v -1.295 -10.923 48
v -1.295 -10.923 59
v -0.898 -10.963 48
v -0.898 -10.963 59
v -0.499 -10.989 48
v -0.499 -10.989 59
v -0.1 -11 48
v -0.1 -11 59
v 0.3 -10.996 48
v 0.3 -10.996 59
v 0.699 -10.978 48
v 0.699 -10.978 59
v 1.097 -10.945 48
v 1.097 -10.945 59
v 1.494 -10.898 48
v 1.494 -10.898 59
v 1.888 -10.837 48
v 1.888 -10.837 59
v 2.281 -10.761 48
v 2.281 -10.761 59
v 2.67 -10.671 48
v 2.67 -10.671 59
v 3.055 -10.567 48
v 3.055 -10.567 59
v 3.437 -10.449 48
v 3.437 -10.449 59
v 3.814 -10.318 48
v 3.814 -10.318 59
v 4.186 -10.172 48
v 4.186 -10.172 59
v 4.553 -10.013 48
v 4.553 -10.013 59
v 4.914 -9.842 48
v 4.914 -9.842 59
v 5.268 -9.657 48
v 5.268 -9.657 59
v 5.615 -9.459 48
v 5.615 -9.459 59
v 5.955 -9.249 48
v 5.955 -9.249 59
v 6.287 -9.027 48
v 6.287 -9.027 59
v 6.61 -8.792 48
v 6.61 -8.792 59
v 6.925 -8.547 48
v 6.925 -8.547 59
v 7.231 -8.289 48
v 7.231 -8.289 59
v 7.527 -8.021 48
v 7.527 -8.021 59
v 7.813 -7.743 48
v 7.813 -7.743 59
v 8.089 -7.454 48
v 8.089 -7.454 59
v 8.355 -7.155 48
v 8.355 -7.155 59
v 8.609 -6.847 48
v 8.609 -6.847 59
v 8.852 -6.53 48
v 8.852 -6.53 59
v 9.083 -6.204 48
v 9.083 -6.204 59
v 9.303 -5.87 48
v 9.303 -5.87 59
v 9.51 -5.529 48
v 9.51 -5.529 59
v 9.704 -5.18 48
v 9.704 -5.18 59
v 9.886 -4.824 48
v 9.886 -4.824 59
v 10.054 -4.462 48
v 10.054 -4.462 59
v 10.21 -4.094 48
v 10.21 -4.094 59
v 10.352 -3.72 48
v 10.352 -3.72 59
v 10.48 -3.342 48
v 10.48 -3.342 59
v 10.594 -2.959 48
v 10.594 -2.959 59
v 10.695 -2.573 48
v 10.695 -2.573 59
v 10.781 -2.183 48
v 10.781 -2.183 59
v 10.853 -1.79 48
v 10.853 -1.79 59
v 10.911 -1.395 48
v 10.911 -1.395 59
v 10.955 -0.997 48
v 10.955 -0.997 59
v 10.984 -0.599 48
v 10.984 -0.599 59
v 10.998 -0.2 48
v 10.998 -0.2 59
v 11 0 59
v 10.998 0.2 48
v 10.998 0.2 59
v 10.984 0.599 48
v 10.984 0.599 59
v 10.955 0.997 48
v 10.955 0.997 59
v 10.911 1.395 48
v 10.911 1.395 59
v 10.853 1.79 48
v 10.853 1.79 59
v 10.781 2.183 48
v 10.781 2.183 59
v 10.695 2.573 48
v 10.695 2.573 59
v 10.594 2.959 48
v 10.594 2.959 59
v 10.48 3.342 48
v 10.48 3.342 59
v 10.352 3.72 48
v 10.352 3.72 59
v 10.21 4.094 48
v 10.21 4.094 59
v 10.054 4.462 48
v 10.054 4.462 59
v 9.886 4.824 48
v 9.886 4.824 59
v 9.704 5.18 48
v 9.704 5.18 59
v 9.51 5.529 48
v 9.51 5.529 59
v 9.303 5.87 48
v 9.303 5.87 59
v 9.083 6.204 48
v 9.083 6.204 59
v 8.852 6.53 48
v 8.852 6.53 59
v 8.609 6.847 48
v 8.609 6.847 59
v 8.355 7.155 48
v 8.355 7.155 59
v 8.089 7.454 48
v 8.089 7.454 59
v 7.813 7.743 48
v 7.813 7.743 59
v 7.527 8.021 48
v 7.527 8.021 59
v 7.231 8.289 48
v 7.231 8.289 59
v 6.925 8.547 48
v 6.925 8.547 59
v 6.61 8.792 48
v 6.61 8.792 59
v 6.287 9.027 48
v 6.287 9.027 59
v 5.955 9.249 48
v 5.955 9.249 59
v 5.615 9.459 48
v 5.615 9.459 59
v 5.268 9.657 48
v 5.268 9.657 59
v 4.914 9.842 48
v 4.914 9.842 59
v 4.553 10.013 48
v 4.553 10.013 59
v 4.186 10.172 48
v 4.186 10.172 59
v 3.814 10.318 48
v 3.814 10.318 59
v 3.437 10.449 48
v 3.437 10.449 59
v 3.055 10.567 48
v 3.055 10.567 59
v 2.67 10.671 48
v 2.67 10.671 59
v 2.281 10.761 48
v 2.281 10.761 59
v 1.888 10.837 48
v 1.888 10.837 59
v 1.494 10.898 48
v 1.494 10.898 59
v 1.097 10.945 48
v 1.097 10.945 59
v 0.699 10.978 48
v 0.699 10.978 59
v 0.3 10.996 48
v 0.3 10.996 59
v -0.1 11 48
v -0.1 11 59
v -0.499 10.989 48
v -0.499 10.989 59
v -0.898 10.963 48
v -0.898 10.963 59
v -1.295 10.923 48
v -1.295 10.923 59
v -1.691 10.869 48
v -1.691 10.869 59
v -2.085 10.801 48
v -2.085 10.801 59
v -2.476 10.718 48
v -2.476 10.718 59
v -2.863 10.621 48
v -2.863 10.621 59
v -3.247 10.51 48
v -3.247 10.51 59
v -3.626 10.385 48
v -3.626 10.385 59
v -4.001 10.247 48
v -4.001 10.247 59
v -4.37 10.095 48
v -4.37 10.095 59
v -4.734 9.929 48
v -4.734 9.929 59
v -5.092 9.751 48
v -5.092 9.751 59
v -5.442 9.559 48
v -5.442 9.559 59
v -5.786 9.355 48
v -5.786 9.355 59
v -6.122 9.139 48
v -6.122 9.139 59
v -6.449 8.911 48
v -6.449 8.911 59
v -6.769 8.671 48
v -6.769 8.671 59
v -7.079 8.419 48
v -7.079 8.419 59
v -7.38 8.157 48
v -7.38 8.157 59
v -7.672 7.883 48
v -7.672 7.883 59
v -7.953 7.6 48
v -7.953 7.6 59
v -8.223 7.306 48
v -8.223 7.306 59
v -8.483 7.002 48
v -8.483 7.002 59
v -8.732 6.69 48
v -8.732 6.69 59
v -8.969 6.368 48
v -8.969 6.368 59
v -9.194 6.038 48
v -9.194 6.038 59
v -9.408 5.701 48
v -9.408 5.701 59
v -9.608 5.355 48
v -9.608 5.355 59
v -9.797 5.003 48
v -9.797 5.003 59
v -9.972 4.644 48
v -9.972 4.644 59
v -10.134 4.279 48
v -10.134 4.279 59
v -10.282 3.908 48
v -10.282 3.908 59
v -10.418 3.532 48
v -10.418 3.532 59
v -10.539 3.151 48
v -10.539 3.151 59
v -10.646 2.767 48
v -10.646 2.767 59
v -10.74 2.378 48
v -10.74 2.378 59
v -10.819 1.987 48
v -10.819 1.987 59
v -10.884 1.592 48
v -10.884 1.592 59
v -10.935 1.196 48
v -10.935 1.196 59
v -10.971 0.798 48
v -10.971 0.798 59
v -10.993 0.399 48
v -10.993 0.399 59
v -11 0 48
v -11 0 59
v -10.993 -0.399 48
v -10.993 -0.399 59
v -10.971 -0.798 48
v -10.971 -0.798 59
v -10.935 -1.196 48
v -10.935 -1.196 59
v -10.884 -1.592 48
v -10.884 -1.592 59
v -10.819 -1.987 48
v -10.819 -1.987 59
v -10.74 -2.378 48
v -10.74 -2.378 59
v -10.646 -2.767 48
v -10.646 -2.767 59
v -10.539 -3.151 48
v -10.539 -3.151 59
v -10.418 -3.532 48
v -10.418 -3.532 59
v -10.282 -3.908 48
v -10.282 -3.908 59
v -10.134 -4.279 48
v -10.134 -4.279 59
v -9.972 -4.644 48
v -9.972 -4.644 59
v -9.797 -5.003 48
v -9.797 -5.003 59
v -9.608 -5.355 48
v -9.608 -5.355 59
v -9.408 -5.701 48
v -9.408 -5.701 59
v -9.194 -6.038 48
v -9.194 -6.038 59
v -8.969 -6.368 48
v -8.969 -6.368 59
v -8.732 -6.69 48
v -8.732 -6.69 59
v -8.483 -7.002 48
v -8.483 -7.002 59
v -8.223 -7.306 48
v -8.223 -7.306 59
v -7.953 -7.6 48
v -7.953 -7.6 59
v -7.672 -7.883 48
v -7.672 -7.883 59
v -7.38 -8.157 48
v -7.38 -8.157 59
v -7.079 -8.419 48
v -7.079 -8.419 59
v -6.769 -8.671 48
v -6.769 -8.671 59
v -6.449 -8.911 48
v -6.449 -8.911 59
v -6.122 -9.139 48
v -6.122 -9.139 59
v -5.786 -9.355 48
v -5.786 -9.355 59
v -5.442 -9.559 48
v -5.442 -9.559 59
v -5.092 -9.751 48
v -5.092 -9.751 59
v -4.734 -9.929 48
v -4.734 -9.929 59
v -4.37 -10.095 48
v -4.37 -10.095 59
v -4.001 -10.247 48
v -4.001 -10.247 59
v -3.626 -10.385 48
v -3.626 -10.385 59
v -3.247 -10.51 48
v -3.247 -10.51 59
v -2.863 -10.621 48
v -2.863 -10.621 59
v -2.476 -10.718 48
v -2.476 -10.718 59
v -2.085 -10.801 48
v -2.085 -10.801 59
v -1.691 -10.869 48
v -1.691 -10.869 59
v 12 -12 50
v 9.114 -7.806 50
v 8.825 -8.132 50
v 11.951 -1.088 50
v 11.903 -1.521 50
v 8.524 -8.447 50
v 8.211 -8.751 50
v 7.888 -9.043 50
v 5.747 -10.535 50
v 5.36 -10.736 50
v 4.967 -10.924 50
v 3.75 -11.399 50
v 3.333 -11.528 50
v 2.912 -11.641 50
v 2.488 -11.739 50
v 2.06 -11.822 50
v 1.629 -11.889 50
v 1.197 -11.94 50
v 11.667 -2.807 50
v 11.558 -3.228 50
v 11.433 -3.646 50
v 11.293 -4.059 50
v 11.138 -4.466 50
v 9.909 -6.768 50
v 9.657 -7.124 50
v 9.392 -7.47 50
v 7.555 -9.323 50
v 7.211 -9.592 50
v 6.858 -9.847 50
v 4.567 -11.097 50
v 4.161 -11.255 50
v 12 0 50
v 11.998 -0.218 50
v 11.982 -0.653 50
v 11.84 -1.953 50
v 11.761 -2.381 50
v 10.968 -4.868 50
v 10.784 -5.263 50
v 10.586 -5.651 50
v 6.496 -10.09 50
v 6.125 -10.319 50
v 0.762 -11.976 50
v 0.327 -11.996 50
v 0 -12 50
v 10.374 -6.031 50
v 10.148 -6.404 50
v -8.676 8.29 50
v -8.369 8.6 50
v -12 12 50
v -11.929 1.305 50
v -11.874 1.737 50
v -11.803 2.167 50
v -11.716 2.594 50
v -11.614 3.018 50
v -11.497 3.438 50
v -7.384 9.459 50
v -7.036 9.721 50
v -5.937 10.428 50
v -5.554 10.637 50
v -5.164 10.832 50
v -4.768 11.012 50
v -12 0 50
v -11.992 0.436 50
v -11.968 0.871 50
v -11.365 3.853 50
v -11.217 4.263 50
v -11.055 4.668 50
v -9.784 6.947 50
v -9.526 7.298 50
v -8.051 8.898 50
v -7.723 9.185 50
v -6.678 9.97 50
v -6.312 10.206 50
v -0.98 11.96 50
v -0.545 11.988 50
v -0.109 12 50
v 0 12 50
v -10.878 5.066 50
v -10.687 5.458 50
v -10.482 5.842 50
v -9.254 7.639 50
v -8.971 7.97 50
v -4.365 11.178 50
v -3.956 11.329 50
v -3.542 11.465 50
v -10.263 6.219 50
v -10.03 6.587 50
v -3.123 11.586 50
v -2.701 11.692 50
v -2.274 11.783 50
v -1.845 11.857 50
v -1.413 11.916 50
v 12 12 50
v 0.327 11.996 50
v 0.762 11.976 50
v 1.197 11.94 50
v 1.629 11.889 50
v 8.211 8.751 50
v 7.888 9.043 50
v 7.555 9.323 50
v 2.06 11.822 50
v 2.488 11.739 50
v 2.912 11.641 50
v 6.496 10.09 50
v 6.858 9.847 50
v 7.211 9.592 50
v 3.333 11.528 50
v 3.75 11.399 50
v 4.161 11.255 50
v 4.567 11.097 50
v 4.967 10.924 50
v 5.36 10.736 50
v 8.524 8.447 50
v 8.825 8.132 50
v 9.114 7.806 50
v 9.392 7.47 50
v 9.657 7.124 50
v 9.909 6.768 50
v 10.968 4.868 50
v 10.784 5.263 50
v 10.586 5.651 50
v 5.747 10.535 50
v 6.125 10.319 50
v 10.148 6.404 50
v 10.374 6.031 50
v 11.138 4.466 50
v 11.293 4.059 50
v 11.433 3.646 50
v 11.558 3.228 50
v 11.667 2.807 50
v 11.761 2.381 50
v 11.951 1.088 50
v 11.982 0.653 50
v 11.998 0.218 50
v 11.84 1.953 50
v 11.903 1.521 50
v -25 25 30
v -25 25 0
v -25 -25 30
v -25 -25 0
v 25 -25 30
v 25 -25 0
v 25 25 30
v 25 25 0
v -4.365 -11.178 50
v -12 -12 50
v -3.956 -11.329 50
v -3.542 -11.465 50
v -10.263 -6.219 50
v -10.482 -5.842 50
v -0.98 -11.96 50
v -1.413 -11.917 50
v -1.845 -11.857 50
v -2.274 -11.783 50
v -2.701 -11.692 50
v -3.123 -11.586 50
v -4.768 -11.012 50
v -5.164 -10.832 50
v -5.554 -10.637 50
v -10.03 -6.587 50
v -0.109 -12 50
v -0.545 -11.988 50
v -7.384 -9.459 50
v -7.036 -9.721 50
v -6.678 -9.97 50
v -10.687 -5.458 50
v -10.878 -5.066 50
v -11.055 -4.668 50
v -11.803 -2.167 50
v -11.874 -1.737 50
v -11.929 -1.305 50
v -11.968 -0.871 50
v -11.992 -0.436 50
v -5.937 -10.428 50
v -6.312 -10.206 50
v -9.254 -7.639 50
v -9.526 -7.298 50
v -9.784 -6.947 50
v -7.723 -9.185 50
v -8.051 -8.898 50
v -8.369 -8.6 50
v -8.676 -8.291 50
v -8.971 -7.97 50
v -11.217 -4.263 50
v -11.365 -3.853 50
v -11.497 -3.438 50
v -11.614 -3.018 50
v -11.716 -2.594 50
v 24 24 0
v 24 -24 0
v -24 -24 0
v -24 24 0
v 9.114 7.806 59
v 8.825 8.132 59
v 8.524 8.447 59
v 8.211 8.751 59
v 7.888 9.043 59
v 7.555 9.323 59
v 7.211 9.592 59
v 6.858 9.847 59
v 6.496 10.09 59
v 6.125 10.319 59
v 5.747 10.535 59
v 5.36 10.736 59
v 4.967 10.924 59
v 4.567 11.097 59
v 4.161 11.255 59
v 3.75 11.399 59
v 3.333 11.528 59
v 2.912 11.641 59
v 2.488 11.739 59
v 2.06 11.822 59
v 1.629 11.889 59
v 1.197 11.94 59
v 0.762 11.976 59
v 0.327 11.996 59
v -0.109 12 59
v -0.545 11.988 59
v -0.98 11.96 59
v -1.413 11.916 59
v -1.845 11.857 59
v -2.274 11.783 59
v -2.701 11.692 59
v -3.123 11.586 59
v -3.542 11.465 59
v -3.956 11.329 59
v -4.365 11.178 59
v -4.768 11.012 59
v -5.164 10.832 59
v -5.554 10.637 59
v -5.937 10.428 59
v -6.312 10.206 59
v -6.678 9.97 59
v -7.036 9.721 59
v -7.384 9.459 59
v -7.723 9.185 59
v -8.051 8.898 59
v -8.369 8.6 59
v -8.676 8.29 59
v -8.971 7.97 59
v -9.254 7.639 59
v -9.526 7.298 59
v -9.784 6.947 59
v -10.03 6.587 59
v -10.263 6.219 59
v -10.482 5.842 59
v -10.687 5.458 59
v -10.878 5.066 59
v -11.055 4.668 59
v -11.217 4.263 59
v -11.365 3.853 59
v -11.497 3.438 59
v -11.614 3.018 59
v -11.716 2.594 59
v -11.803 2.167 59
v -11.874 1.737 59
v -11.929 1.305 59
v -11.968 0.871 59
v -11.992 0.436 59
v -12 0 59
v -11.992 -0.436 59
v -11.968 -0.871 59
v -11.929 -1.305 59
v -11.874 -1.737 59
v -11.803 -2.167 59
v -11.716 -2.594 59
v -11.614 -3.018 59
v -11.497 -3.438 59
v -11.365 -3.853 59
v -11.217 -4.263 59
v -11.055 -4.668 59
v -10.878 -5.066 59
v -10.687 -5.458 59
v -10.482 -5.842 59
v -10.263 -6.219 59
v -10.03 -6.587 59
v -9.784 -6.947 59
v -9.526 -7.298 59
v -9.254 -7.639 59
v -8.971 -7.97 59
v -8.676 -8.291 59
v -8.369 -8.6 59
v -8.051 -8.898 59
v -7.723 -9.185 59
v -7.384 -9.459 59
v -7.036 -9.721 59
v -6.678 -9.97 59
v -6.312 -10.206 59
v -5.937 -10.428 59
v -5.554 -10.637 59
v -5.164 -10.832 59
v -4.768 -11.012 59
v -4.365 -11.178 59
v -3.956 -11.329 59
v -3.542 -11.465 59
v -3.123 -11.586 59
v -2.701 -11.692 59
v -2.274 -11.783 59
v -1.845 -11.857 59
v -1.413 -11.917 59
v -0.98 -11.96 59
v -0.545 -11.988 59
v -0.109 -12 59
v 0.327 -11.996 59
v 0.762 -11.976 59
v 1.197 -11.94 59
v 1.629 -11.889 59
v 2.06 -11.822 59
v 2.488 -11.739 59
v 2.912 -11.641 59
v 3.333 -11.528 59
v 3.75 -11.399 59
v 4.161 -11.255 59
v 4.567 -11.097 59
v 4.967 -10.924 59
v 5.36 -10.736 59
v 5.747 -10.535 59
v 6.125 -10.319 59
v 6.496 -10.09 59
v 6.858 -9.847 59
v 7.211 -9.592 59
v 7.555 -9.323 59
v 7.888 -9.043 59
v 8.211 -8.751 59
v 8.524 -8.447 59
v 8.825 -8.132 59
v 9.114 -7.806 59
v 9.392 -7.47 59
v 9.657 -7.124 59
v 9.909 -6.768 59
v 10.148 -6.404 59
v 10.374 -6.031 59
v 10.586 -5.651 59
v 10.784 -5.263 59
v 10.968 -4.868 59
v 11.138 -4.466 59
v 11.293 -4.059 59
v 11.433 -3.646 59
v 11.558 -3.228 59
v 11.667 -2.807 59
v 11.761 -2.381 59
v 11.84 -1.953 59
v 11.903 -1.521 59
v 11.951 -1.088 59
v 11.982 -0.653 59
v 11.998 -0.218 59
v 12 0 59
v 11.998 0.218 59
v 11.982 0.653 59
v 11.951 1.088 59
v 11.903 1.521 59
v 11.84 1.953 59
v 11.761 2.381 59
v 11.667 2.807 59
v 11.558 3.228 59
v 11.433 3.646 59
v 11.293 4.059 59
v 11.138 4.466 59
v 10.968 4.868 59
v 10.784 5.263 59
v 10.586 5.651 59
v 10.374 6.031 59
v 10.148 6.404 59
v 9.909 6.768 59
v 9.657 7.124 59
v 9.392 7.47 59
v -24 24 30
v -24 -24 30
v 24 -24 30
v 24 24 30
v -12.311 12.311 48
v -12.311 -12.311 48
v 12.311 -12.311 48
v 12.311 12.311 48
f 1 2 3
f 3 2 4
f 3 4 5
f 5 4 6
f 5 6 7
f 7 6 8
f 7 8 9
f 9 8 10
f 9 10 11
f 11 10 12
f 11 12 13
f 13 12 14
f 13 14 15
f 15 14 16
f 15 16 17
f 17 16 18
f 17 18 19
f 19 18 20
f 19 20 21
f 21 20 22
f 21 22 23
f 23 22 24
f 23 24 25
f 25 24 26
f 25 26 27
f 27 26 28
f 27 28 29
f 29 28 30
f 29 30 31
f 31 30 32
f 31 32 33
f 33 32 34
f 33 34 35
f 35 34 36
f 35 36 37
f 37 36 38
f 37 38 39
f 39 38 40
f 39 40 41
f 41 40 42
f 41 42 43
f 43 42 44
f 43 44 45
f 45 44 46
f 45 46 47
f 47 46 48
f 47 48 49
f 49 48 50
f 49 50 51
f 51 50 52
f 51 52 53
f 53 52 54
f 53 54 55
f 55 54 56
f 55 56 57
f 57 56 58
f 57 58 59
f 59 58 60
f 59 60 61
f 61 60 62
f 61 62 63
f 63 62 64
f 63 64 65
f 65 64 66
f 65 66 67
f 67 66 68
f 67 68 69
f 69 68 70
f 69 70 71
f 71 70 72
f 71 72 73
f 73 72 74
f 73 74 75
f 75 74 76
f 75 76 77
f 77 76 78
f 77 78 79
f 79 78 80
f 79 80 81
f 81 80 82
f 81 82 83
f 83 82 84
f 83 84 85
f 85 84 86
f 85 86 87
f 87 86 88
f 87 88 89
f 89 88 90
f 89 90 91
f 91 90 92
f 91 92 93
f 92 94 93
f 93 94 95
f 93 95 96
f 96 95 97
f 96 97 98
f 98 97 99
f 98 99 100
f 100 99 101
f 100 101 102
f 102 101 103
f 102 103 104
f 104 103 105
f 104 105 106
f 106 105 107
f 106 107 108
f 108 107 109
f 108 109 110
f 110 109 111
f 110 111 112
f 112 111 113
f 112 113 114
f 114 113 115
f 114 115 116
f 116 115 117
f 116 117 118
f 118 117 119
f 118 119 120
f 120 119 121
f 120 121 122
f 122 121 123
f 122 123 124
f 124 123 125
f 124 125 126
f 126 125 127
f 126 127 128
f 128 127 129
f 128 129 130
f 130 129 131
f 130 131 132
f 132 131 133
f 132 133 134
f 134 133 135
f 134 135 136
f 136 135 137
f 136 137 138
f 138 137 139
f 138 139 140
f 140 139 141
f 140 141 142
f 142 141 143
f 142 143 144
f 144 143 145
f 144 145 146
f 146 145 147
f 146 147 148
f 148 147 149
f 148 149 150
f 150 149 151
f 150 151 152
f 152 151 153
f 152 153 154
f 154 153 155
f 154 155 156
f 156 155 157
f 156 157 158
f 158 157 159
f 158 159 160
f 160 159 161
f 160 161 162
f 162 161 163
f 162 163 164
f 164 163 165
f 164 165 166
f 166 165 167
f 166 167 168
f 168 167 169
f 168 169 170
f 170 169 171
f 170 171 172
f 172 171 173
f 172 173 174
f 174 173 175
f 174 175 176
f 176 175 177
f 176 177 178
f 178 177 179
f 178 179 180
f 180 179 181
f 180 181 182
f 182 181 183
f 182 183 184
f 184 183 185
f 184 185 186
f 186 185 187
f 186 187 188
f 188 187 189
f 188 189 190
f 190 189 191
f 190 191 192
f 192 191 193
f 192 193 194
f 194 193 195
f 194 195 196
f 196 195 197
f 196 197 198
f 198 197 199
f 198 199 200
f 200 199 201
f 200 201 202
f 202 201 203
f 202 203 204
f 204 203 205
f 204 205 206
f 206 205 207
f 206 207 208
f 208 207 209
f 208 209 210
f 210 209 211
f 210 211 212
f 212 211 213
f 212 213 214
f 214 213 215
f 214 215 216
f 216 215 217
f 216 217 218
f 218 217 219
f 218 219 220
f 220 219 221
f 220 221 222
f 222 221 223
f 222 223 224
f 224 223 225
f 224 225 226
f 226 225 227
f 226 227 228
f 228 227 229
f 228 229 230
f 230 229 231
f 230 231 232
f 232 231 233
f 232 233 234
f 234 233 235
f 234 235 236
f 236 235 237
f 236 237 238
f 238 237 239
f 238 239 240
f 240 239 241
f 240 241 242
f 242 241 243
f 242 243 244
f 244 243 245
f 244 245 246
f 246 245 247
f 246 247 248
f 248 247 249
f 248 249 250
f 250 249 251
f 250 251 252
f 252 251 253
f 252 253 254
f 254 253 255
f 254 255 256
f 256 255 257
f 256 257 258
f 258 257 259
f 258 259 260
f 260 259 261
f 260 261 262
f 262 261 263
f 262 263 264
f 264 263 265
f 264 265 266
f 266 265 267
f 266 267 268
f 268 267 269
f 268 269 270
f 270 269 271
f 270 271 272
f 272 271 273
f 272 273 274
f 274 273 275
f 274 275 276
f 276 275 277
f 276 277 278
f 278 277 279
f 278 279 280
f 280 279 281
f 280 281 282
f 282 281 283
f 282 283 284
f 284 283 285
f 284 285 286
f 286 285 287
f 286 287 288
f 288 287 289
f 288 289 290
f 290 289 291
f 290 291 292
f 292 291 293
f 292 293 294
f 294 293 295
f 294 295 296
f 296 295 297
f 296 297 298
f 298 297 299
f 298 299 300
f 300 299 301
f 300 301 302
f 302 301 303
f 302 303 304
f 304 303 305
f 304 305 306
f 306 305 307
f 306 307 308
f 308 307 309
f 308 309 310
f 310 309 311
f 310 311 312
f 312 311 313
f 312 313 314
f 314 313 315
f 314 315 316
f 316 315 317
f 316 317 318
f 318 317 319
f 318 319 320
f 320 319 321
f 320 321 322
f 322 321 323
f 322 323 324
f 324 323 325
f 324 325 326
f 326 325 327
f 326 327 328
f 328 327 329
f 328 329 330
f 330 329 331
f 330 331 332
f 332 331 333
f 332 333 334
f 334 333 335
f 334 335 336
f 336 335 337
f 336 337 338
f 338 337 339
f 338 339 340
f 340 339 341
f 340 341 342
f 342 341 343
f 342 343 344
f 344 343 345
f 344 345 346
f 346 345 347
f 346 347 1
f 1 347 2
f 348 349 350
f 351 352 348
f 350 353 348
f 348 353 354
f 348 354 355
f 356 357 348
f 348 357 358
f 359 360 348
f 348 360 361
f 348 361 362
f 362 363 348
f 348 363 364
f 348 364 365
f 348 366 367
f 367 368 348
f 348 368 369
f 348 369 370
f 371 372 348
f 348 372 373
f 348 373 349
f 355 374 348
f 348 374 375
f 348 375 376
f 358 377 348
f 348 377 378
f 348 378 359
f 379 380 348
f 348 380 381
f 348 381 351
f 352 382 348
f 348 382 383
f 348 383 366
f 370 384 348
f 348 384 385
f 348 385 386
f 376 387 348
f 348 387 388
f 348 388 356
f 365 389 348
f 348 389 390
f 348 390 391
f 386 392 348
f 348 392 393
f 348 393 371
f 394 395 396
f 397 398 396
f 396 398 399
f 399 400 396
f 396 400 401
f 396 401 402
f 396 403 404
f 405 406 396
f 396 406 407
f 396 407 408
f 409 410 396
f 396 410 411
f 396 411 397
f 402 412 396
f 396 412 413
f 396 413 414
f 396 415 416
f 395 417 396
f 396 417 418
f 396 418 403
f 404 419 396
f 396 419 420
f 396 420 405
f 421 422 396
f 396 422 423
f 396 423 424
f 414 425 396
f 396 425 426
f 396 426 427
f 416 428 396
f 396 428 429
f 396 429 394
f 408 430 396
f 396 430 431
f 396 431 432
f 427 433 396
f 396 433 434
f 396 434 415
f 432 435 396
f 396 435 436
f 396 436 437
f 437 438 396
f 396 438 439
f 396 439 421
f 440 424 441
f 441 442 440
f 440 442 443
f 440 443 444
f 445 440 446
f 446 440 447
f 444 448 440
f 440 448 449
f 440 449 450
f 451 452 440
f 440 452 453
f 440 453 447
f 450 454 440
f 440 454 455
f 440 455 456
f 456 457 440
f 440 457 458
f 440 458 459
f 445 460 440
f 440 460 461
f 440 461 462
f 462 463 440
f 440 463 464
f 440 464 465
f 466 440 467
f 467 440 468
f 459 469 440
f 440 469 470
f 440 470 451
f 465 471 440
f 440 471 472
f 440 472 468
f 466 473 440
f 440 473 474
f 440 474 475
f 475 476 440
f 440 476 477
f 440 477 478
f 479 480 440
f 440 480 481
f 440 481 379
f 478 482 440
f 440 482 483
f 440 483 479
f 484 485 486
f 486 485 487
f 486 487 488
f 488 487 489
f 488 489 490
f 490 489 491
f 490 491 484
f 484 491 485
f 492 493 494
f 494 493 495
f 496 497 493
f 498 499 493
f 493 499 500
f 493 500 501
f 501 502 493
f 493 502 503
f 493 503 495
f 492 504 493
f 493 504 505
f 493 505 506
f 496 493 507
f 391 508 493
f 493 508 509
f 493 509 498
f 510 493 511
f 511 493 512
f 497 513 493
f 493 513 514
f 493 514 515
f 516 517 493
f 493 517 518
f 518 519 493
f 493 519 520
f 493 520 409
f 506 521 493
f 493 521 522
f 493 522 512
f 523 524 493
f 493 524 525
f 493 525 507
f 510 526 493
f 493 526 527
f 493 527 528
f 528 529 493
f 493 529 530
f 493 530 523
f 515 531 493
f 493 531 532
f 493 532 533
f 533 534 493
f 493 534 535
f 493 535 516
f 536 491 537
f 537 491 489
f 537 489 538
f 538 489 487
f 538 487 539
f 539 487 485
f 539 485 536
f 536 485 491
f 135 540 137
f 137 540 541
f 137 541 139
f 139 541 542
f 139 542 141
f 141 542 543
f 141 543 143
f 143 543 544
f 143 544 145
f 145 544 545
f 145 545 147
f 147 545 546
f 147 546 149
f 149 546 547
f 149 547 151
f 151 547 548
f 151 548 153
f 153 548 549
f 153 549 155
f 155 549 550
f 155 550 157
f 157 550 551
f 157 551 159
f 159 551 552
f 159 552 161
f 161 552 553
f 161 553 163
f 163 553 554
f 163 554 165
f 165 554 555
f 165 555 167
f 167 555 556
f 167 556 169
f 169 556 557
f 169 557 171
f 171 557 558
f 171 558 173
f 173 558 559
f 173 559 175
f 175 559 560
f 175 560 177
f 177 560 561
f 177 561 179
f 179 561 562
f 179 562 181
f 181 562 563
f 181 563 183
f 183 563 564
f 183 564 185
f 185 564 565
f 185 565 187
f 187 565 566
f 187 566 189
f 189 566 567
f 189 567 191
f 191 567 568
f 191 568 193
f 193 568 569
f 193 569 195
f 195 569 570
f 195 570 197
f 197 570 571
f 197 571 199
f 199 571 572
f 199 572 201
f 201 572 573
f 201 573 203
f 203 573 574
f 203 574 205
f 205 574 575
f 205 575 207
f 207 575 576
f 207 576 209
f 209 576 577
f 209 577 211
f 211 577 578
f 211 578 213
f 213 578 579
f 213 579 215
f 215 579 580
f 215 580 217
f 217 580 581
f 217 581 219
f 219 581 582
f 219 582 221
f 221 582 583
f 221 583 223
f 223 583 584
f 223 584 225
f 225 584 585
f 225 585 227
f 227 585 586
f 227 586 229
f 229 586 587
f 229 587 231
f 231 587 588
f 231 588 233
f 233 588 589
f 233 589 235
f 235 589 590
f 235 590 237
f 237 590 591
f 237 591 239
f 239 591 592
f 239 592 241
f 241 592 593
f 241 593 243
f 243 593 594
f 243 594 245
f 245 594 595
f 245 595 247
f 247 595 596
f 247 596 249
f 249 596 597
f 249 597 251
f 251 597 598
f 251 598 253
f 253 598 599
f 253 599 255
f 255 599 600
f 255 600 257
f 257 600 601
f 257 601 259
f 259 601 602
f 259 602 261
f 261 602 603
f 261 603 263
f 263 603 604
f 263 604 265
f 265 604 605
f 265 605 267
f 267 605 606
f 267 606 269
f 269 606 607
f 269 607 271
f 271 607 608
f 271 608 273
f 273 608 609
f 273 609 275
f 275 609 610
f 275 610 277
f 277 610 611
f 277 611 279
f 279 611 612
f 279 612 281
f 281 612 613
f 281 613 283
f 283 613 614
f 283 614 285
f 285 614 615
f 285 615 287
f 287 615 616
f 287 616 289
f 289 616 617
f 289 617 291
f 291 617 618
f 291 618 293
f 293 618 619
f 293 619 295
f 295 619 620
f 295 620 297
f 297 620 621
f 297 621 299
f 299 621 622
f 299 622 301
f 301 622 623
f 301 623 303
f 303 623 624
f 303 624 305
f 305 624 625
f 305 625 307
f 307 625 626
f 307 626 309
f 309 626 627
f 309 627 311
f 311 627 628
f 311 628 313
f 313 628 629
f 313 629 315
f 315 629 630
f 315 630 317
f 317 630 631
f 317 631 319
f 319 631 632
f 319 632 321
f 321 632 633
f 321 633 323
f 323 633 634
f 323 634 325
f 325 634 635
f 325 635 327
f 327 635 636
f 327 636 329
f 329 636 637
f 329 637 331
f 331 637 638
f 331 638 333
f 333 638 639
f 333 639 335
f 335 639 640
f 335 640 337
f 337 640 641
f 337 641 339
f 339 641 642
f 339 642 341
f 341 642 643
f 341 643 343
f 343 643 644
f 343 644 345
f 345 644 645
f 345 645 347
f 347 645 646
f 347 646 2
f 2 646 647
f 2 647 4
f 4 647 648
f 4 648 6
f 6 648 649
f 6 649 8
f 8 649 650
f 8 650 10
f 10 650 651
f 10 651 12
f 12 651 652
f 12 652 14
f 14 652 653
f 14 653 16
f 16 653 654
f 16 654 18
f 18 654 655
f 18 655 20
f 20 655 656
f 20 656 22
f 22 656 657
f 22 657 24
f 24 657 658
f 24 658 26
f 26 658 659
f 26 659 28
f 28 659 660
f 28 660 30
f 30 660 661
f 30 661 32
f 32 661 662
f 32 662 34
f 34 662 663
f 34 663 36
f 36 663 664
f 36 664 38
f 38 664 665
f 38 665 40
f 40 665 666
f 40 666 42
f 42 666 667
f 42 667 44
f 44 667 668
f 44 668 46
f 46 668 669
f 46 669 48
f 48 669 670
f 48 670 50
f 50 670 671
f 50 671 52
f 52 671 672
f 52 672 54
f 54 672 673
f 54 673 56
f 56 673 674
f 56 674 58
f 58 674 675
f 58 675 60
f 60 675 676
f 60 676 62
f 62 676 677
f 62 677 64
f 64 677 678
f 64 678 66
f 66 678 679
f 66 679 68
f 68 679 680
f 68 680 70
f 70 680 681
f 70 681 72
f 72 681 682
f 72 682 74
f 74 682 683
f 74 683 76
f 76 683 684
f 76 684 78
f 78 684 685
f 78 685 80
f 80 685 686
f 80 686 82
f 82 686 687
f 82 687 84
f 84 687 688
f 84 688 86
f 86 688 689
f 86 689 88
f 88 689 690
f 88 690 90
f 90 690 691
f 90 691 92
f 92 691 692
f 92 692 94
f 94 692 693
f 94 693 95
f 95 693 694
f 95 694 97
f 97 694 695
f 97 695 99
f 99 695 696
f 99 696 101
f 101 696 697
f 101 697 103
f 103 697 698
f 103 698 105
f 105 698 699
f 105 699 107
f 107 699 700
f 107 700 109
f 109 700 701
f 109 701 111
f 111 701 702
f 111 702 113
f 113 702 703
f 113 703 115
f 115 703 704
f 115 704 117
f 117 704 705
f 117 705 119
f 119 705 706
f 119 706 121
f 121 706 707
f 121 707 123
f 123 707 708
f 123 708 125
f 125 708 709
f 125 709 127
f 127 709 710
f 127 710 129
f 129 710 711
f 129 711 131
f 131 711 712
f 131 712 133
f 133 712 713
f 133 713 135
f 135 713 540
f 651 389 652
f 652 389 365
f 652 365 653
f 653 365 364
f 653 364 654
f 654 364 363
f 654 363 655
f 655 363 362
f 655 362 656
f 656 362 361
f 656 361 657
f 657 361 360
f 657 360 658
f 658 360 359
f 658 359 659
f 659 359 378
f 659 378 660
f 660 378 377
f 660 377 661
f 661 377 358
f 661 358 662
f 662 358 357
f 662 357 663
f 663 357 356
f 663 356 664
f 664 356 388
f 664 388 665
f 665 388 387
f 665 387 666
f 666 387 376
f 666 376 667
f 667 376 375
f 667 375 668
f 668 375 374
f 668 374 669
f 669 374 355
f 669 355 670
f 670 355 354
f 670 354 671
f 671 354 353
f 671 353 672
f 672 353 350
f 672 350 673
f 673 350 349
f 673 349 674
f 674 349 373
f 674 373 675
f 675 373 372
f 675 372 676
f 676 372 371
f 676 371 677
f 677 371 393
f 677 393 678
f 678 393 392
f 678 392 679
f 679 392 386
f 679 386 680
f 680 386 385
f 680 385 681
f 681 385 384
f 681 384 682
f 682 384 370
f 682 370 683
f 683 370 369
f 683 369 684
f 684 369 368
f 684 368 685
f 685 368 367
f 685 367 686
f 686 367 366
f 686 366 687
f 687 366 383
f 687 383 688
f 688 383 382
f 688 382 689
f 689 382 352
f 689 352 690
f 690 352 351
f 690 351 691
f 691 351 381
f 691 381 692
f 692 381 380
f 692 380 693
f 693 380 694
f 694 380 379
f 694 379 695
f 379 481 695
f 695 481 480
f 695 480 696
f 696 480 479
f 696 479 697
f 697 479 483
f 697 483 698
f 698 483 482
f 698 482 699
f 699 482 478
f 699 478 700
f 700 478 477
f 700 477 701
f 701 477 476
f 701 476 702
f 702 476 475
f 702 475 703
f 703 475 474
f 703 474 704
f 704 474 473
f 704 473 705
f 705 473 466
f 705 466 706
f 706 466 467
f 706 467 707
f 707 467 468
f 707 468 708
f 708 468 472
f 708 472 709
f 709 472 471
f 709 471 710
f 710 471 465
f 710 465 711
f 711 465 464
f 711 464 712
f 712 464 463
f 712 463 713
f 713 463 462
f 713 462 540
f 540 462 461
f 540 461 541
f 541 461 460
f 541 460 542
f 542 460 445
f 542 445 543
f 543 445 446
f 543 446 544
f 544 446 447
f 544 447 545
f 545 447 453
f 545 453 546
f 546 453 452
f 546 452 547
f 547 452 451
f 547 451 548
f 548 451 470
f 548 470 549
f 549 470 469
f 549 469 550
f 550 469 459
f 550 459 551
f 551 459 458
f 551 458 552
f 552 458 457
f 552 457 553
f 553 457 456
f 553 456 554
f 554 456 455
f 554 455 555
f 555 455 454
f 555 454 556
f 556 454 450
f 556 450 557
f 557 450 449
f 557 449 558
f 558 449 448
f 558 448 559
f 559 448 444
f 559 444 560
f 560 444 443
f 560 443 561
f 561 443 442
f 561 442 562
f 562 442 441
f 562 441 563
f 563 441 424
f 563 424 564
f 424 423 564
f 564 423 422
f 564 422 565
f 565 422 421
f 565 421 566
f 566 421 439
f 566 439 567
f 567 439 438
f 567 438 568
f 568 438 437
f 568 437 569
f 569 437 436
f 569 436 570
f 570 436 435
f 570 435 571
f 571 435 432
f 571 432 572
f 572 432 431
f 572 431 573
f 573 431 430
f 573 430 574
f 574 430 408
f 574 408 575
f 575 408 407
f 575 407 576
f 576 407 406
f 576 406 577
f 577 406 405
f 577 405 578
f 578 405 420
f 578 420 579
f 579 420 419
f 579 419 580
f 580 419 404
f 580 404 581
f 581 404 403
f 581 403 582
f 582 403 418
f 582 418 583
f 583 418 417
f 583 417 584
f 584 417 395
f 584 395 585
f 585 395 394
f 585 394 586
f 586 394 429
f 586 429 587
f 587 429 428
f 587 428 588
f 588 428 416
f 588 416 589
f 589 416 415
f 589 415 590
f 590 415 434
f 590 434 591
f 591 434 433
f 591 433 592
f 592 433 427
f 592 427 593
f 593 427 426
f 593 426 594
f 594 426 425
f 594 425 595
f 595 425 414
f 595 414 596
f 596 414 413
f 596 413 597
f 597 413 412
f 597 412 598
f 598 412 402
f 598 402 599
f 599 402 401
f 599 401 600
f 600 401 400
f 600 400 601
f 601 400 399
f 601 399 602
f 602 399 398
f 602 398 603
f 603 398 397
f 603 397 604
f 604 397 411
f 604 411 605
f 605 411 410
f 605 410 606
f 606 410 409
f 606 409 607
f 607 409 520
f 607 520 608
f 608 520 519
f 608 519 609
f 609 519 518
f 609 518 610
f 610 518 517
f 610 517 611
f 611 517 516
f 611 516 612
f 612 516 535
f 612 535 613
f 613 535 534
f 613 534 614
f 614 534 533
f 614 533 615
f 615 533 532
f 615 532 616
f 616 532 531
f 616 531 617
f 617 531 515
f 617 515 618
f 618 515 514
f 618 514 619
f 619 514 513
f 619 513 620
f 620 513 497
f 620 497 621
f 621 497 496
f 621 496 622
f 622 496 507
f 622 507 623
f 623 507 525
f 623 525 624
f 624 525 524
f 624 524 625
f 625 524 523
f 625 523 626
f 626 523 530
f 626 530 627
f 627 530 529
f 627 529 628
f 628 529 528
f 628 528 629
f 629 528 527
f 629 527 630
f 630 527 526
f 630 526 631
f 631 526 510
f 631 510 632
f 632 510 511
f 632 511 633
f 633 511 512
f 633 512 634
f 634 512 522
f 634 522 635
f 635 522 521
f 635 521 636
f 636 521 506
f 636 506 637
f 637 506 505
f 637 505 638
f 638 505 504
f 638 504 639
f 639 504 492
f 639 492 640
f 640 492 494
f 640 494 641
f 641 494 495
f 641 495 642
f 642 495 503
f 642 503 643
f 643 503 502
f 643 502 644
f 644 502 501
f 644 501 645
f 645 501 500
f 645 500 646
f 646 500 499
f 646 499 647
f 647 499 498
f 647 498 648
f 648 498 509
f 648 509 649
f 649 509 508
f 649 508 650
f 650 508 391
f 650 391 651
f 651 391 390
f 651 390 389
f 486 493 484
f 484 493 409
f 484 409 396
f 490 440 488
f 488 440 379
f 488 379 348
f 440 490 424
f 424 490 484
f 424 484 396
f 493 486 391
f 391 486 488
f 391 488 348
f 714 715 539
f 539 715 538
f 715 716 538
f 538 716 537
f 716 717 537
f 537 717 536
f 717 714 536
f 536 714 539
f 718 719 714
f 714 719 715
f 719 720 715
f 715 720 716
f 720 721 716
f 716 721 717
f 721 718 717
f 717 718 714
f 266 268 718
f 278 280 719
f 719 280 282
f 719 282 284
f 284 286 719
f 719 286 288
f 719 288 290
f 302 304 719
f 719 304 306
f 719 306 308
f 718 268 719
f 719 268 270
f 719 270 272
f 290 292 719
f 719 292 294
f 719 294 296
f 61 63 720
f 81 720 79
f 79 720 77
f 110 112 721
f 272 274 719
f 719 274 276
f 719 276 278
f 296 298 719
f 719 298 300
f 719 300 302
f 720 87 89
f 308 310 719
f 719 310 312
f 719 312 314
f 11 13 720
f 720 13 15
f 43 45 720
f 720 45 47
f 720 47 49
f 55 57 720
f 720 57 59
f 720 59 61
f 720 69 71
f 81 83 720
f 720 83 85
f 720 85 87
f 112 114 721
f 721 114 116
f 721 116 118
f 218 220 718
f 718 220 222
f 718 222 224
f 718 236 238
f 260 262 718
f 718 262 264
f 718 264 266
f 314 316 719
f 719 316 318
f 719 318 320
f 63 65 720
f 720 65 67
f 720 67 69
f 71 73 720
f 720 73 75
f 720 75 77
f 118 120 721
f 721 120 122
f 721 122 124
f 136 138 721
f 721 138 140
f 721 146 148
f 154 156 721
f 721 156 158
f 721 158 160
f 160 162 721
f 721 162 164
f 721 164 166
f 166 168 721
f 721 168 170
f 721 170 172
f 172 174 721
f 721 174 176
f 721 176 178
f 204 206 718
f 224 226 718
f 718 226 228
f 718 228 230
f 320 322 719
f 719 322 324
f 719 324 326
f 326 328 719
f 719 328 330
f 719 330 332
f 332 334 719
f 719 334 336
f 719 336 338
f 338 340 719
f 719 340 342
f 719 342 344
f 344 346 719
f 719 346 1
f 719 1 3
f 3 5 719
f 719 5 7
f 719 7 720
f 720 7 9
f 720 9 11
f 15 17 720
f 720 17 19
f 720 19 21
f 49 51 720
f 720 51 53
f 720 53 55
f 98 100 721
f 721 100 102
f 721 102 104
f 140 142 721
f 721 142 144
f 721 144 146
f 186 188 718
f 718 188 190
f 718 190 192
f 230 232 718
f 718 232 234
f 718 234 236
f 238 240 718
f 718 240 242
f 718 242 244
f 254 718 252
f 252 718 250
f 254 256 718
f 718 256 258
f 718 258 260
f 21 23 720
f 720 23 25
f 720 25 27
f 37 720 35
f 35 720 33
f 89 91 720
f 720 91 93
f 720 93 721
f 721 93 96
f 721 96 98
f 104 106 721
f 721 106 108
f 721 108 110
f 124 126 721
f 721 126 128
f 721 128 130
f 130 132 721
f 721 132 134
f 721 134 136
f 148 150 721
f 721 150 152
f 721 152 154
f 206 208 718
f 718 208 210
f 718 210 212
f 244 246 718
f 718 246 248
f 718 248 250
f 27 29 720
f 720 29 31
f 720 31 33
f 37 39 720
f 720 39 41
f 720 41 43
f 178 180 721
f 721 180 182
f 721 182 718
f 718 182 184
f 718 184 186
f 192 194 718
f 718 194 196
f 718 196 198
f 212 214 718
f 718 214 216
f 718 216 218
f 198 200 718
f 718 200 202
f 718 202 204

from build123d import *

# Parameters (mm, degrees)
SKETCH_1_W           = 50
SKETCH_1_H           = 50
EXTRUDE_1_DEPTH      = 50
SKETCH_6_R           = 12
SKETCH_6_R_2         = 11
EXTRUDE_3_DEPTH      = 9
CUT_EXTRUDE_5_REACH  = 83.277
CUT_EXTRUDE_6_REACH  = 83.277
SKETCH_20_W          = 48
SKETCH_20_H          = 48
CUT_EXTRUDE_7_DEPTH  = 30
CUT_EXTRUDE_START    = -29
SKETCH_21_R          = 11
CUT_EXTRUDE_9_DEPTH  = 29
SKETCH_28_W          = 48
SKETCH_28_H          = 48
CUT_EXTRUDE_11_DEPTH = 18
CUT_EXTRUDE_11_DRAFT = -33


with BuildPart() as part:
    # Эскиз1 → Бобышка-Вытянуть1 (new body)
    with BuildSketch(Plane.XY):
        Rectangle(SKETCH_1_W, SKETCH_1_H)
    extrude(amount=EXTRUDE_1_DEPTH)

    # Эскиз6 → Бобышка-Вытянуть3 (add)
    with BuildSketch(Plane.XY.offset(50)):
        Circle(SKETCH_6_R)
        Circle(SKETCH_6_R_2, mode=Mode.SUBTRACT)
    extrude(amount=EXTRUDE_3_DEPTH)

    # Вырез-Вытянуть5: up to this face of the body (flat: up to its plane)
    cut_extrude_5_end = Plane(part.part.faces().sort_by_distance((0, 25, 25))[0])
    # Эскиз19 → Вырез-Вытянуть5 (cut, up to the picked face)
    with BuildSketch(Plane.XZ.offset(25), mode=Mode.PRIVATE) as cut_extrude_5_sk1:
        Polygon((-12, 50), (-25, 50), (-25, 30), align=None)
    cut_extrude_5_tool1 = split(extrude(cut_extrude_5_sk1.sketch, amount=-CUT_EXTRUDE_5_REACH, mode=Mode.PRIVATE), bisect_by=cut_extrude_5_end, keep=Keep.BOTH, mode=Mode.PRIVATE)
    # Эскиз19 → Вырез-Вытянуть5 (cut, up to the picked face)
    with BuildSketch(Plane.XZ.offset(25), mode=Mode.PRIVATE) as cut_extrude_5_sk2:
        Polygon((12, 50), (25, 50), (25, 30), align=None)
    cut_extrude_5_tool2 = split(extrude(cut_extrude_5_sk2.sketch, amount=-CUT_EXTRUDE_5_REACH, mode=Mode.PRIVATE), bisect_by=cut_extrude_5_end, keep=Keep.BOTH, mode=Mode.PRIVATE)
    add(cut_extrude_5_tool1.solids().sort_by(Axis((-20.666667, -25, 43.333333), (0, 1, 0)))[0], mode=Mode.SUBTRACT)
    add(cut_extrude_5_tool2.solids().sort_by(Axis((20.666667, -25, 43.333333), (0, 1, 0)))[0], mode=Mode.SUBTRACT)

    # Вырез-Вытянуть6: up to this face of the body (flat: up to its plane)
    cut_extrude_6_end = Plane(part.part.faces().sort_by_distance((-25, 0, 15))[0])
    # Эскиз18 → Вырез-Вытянуть6 (cut, up to the picked face)
    with BuildSketch(Plane(origin=(25, 0, 0), x_dir=(0, 0, -1), z_dir=(1, 0, 0)), mode=Mode.PRIVATE) as cut_extrude_6_sk1:
        Polygon((-50, 12), (-50, 25), (-30, 25), align=None)
    cut_extrude_6_tool1 = split(extrude(cut_extrude_6_sk1.sketch, amount=-CUT_EXTRUDE_6_REACH, mode=Mode.PRIVATE), bisect_by=cut_extrude_6_end, keep=Keep.BOTH, mode=Mode.PRIVATE)
    # Эскиз18 → Вырез-Вытянуть6 (cut, up to the picked face)
    with BuildSketch(Plane(origin=(25, 0, 0), x_dir=(0, 0, -1), z_dir=(1, 0, 0)), mode=Mode.PRIVATE) as cut_extrude_6_sk2:
        Polygon((-50, -12), (-50, -25), (-30, -25), align=None)
    cut_extrude_6_tool2 = split(extrude(cut_extrude_6_sk2.sketch, amount=-CUT_EXTRUDE_6_REACH, mode=Mode.PRIVATE), bisect_by=cut_extrude_6_end, keep=Keep.BOTH, mode=Mode.PRIVATE)
    add(cut_extrude_6_tool1.solids().sort_by(Axis((25, 20.666667, 43.333333), (-1, 0, 0)))[0], mode=Mode.SUBTRACT)
    add(cut_extrude_6_tool2.solids().sort_by(Axis((25, -20.666667, 43.333333), (-1, 0, 0)))[0], mode=Mode.SUBTRACT)

    # Эскиз20 → Вырез-Вытянуть7 (cut)
    with BuildSketch(Plane(origin=(0, 0, 0), x_dir=(-1, 0, 0), z_dir=(0, 0, -1))):
        Rectangle(SKETCH_20_W, SKETCH_20_H)
    extrude(amount=-CUT_EXTRUDE_7_DEPTH, mode=Mode.SUBTRACT)

    # Эскиз21 → Вырез-Вытянуть9 (cut)
    with BuildSketch(Plane.XY.offset(59).offset(CUT_EXTRUDE_START)):
        Circle(SKETCH_21_R)
    extrude(amount=CUT_EXTRUDE_9_DEPTH, mode=Mode.SUBTRACT)


with BuildPart() as cut_extrude_11_tool:
    # Эскиз28 → Вырез-Вытянуть11 (with draft: the straight prism first)
    with BuildSketch(Plane(origin=(0, 0, 30), x_dir=(-1, 0, 0), z_dir=(0, 0, -1))):
        Rectangle(SKETCH_28_W, SKETCH_28_H)
    extrude(amount=-CUT_EXTRUDE_11_DEPTH)
    # Вырез-Вытянуть11: the draft: its side faces are tilted about the plane it starts from
    cut_extrude_11_sides = [cut_extrude_11_tool.faces().sort_by_distance(p)[0] for p in [
        (24, 0, 39),
        (0, -24, 39),
        (-24, 0, 39),
        (0, 24, 39),
    ]]
    draft(cut_extrude_11_sides, Plane(origin=(0, 0, 30), x_dir=(-1, 0, 0), z_dir=(0, 0, -1)), CUT_EXTRUDE_11_DRAFT)


with BuildPart() as part_1:
    add(part.part)

    # Вырез-Вытянуть11: cut by cut_extrude_11_tool
    add(cut_extrude_11_tool.part, mode=Mode.SUBTRACT)


solid = part_1.part
